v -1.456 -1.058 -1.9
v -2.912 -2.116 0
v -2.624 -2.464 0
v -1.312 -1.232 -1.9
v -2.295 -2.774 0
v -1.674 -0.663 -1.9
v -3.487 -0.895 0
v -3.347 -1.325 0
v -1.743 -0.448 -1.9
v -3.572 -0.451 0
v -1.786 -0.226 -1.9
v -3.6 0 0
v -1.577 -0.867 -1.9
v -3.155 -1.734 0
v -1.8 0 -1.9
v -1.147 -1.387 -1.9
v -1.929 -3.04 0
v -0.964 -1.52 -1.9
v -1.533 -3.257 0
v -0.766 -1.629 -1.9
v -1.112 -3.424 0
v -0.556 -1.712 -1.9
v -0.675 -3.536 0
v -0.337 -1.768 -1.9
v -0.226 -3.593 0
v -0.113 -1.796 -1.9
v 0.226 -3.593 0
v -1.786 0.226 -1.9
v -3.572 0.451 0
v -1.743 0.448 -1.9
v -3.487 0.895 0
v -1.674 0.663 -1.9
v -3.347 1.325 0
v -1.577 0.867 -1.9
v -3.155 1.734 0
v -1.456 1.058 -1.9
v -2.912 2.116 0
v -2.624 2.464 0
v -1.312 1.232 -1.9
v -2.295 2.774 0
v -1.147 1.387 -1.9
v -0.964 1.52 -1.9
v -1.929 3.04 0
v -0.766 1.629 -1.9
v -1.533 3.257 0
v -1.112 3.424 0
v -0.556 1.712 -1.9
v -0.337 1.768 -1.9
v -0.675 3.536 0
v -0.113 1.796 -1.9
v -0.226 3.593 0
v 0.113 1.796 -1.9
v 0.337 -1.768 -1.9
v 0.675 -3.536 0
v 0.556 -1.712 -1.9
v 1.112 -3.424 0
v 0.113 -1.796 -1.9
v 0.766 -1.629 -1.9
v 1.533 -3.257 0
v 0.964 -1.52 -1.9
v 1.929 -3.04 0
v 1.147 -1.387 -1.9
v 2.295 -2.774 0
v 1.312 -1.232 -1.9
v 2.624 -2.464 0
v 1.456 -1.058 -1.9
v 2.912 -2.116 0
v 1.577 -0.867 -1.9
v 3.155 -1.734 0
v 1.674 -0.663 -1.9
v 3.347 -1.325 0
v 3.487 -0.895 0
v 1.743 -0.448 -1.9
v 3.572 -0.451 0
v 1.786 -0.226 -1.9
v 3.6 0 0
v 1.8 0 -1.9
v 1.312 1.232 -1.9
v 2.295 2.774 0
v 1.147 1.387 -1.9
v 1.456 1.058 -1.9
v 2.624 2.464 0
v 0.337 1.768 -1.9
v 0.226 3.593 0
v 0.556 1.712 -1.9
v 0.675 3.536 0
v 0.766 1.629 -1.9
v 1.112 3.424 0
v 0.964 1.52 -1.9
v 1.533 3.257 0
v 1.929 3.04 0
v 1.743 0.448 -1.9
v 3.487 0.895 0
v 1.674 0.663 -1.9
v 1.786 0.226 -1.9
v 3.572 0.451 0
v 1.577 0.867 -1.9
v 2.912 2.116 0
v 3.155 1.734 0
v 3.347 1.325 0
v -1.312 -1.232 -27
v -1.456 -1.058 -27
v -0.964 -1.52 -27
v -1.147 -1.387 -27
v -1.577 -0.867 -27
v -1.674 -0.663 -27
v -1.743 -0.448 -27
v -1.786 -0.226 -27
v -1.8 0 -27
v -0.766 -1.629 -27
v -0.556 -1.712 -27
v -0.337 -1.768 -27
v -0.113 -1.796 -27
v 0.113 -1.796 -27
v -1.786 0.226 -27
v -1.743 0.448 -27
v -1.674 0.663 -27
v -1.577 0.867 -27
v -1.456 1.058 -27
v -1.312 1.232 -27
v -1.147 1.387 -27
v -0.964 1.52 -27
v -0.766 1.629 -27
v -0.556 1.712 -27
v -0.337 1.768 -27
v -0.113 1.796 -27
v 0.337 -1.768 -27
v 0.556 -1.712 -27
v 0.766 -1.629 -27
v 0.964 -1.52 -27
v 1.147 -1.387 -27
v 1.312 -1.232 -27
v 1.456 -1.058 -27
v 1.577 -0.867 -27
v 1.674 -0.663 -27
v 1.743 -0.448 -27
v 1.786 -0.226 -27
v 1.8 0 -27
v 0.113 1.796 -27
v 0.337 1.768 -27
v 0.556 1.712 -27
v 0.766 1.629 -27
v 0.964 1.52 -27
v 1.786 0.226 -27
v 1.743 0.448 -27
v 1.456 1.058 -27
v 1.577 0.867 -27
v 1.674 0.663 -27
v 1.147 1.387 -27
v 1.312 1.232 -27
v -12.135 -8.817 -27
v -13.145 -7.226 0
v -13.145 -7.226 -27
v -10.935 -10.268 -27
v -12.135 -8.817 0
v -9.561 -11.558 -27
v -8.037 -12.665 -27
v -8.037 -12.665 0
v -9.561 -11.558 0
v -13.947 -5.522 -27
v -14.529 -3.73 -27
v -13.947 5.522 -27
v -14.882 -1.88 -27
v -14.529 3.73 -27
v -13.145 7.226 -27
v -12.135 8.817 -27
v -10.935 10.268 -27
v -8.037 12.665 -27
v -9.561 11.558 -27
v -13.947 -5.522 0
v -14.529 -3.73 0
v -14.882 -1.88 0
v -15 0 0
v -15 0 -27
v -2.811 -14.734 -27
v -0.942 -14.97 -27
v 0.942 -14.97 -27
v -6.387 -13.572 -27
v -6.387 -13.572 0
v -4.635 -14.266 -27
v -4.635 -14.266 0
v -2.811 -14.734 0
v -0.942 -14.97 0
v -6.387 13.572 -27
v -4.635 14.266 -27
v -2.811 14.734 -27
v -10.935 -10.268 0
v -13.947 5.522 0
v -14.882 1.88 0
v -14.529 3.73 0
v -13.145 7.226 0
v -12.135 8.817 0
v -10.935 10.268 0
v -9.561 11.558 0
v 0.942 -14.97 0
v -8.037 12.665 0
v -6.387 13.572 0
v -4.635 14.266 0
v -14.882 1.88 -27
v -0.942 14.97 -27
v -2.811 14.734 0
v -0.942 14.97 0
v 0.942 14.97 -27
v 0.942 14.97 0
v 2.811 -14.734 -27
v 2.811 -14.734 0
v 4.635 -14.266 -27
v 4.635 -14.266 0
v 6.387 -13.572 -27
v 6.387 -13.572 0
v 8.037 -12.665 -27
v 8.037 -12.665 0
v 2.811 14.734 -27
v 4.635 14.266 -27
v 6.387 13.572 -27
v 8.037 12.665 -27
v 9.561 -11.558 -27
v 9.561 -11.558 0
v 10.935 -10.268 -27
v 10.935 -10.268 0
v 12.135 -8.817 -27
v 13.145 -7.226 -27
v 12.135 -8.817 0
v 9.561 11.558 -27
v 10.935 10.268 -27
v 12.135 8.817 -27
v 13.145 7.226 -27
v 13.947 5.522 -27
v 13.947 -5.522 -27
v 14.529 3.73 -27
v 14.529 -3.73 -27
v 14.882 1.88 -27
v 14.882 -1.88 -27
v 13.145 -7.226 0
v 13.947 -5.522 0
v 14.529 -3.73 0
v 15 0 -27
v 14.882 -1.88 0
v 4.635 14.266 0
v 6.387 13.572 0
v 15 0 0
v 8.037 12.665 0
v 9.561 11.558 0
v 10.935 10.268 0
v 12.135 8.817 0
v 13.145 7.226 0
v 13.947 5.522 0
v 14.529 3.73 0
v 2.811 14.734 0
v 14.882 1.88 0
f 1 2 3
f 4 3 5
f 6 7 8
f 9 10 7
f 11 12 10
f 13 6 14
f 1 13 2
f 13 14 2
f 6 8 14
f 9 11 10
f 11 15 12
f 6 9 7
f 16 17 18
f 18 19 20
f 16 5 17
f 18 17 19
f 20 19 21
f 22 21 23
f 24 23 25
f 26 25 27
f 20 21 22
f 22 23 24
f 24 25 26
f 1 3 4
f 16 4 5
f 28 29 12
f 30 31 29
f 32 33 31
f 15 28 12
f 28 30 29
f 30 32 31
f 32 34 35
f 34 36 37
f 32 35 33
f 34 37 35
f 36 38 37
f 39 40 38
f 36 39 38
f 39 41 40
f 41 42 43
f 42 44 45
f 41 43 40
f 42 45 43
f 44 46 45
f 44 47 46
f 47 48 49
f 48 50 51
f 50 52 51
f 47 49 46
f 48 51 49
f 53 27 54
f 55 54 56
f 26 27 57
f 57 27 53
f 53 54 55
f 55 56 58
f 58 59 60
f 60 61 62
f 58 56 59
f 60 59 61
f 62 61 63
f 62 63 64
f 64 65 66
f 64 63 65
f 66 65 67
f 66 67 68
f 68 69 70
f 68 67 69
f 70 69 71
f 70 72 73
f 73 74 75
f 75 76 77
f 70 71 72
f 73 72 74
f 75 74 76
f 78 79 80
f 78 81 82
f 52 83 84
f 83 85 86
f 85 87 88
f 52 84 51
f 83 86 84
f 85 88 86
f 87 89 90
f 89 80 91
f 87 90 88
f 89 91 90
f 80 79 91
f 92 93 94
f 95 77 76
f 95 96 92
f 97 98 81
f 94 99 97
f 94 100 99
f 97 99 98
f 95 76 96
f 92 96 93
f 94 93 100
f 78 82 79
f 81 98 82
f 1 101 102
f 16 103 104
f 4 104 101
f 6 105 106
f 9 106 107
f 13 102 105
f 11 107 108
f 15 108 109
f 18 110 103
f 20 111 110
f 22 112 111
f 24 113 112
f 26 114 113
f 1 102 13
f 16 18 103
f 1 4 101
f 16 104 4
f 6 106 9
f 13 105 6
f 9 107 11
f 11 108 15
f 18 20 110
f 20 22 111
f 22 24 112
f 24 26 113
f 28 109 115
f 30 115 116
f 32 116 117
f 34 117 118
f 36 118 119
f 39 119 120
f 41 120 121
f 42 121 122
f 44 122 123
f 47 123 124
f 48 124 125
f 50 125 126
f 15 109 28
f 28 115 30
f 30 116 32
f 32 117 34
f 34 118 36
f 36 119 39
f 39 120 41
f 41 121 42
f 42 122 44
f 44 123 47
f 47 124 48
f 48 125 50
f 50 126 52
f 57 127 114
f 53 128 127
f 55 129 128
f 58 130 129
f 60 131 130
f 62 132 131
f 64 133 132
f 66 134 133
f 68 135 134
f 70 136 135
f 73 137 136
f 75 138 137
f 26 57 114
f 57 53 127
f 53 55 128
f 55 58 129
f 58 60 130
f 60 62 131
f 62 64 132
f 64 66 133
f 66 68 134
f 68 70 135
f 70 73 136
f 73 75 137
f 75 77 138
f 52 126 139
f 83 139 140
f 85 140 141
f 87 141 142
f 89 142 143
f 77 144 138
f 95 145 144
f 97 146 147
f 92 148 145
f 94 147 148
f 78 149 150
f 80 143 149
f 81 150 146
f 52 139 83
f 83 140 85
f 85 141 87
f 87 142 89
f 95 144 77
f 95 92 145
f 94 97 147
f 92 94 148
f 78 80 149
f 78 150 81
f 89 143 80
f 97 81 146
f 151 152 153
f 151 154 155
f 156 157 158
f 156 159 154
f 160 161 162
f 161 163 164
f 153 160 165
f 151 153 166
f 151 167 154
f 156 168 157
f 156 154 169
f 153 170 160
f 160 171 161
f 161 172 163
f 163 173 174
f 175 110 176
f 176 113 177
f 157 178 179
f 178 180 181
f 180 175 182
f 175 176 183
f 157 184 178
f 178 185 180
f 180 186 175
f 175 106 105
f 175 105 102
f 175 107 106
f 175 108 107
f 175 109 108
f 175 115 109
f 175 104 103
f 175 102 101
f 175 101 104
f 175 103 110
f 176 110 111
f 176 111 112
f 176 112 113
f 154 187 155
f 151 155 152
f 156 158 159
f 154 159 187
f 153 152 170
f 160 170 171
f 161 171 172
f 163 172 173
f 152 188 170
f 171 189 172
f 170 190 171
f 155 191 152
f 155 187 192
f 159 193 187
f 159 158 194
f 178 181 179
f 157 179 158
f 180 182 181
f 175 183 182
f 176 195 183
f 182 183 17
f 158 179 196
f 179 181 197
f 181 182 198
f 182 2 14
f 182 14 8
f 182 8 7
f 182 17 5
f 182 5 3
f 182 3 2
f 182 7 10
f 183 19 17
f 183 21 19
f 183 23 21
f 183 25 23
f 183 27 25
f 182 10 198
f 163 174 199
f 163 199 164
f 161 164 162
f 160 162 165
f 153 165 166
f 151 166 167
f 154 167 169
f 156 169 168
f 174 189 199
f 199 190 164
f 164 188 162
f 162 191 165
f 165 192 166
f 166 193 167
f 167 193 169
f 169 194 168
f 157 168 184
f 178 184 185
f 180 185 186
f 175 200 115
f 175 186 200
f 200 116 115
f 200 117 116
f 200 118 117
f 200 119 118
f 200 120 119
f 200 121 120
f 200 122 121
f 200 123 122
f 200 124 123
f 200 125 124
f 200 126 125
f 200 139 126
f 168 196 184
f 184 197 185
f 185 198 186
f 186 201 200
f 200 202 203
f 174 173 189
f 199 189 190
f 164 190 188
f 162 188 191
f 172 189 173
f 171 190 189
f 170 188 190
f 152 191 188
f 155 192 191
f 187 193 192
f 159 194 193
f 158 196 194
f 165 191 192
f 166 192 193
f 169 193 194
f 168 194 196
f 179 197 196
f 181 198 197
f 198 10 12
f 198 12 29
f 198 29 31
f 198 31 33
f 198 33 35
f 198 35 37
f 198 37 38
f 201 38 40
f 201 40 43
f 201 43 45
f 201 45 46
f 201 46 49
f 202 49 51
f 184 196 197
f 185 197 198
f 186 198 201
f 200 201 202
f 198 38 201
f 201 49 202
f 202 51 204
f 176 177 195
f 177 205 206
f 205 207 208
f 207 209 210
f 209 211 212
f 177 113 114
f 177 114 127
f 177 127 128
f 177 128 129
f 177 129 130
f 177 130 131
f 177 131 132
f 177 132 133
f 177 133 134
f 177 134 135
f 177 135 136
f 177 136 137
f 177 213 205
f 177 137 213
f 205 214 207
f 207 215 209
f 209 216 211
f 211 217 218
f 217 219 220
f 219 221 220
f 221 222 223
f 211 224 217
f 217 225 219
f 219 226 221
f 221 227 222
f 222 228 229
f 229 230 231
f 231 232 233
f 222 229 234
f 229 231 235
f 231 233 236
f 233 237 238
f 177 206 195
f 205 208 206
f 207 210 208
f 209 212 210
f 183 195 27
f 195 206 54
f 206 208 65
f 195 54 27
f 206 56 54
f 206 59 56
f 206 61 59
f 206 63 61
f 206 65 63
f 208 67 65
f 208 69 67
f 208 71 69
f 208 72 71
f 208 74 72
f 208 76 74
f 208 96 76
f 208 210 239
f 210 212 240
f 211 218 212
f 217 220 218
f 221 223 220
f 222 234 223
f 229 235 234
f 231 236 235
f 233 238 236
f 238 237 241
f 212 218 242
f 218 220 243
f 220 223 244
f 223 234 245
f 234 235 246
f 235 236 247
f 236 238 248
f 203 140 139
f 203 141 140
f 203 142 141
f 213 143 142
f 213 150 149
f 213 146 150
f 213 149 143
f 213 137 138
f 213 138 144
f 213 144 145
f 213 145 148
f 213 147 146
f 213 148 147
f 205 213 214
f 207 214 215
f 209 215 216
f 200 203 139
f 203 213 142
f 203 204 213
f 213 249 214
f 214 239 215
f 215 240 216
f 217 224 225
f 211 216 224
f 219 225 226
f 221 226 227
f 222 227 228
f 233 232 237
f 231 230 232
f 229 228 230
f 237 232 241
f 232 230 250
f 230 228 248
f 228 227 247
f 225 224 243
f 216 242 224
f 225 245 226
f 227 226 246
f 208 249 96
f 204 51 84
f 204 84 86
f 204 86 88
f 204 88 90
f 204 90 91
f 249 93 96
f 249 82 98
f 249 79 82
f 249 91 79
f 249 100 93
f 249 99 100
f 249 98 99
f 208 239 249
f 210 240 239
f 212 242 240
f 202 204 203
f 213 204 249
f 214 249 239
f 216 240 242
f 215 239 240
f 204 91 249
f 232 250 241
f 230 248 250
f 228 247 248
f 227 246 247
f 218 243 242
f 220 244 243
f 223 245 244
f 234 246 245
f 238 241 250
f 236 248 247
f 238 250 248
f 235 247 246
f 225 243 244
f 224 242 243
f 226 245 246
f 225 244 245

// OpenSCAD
$fn = 50;

difference() {
	union() {
		translate(v = [0, 0, -27.0]) {
			cylinder(h = 27, r = 15.0);
		}
	}
	union() {
		translate(v = [0, 0, 0]) {
			rotate(a = [0, 0, 0]) {
				difference() {
					union() {
						translate(v = [0, 0, -30.0]) {
							cylinder(h = 30, r = 1.5);
						}
						translate(v = [0, 0, -1.9]) {
							cylinder(h = 1.9, r1 = 1.8, r2 = 3.6);
						}
						translate(v = [0, 0, -30.0]) {
							cylinder(h = 30, r = 1.8);
						}
						translate(v = [0, 0, -30.0]) {
							cylinder(h = 30, r = 1.5);
						}
					}
					union();
				}
			}
		}
	}
}
